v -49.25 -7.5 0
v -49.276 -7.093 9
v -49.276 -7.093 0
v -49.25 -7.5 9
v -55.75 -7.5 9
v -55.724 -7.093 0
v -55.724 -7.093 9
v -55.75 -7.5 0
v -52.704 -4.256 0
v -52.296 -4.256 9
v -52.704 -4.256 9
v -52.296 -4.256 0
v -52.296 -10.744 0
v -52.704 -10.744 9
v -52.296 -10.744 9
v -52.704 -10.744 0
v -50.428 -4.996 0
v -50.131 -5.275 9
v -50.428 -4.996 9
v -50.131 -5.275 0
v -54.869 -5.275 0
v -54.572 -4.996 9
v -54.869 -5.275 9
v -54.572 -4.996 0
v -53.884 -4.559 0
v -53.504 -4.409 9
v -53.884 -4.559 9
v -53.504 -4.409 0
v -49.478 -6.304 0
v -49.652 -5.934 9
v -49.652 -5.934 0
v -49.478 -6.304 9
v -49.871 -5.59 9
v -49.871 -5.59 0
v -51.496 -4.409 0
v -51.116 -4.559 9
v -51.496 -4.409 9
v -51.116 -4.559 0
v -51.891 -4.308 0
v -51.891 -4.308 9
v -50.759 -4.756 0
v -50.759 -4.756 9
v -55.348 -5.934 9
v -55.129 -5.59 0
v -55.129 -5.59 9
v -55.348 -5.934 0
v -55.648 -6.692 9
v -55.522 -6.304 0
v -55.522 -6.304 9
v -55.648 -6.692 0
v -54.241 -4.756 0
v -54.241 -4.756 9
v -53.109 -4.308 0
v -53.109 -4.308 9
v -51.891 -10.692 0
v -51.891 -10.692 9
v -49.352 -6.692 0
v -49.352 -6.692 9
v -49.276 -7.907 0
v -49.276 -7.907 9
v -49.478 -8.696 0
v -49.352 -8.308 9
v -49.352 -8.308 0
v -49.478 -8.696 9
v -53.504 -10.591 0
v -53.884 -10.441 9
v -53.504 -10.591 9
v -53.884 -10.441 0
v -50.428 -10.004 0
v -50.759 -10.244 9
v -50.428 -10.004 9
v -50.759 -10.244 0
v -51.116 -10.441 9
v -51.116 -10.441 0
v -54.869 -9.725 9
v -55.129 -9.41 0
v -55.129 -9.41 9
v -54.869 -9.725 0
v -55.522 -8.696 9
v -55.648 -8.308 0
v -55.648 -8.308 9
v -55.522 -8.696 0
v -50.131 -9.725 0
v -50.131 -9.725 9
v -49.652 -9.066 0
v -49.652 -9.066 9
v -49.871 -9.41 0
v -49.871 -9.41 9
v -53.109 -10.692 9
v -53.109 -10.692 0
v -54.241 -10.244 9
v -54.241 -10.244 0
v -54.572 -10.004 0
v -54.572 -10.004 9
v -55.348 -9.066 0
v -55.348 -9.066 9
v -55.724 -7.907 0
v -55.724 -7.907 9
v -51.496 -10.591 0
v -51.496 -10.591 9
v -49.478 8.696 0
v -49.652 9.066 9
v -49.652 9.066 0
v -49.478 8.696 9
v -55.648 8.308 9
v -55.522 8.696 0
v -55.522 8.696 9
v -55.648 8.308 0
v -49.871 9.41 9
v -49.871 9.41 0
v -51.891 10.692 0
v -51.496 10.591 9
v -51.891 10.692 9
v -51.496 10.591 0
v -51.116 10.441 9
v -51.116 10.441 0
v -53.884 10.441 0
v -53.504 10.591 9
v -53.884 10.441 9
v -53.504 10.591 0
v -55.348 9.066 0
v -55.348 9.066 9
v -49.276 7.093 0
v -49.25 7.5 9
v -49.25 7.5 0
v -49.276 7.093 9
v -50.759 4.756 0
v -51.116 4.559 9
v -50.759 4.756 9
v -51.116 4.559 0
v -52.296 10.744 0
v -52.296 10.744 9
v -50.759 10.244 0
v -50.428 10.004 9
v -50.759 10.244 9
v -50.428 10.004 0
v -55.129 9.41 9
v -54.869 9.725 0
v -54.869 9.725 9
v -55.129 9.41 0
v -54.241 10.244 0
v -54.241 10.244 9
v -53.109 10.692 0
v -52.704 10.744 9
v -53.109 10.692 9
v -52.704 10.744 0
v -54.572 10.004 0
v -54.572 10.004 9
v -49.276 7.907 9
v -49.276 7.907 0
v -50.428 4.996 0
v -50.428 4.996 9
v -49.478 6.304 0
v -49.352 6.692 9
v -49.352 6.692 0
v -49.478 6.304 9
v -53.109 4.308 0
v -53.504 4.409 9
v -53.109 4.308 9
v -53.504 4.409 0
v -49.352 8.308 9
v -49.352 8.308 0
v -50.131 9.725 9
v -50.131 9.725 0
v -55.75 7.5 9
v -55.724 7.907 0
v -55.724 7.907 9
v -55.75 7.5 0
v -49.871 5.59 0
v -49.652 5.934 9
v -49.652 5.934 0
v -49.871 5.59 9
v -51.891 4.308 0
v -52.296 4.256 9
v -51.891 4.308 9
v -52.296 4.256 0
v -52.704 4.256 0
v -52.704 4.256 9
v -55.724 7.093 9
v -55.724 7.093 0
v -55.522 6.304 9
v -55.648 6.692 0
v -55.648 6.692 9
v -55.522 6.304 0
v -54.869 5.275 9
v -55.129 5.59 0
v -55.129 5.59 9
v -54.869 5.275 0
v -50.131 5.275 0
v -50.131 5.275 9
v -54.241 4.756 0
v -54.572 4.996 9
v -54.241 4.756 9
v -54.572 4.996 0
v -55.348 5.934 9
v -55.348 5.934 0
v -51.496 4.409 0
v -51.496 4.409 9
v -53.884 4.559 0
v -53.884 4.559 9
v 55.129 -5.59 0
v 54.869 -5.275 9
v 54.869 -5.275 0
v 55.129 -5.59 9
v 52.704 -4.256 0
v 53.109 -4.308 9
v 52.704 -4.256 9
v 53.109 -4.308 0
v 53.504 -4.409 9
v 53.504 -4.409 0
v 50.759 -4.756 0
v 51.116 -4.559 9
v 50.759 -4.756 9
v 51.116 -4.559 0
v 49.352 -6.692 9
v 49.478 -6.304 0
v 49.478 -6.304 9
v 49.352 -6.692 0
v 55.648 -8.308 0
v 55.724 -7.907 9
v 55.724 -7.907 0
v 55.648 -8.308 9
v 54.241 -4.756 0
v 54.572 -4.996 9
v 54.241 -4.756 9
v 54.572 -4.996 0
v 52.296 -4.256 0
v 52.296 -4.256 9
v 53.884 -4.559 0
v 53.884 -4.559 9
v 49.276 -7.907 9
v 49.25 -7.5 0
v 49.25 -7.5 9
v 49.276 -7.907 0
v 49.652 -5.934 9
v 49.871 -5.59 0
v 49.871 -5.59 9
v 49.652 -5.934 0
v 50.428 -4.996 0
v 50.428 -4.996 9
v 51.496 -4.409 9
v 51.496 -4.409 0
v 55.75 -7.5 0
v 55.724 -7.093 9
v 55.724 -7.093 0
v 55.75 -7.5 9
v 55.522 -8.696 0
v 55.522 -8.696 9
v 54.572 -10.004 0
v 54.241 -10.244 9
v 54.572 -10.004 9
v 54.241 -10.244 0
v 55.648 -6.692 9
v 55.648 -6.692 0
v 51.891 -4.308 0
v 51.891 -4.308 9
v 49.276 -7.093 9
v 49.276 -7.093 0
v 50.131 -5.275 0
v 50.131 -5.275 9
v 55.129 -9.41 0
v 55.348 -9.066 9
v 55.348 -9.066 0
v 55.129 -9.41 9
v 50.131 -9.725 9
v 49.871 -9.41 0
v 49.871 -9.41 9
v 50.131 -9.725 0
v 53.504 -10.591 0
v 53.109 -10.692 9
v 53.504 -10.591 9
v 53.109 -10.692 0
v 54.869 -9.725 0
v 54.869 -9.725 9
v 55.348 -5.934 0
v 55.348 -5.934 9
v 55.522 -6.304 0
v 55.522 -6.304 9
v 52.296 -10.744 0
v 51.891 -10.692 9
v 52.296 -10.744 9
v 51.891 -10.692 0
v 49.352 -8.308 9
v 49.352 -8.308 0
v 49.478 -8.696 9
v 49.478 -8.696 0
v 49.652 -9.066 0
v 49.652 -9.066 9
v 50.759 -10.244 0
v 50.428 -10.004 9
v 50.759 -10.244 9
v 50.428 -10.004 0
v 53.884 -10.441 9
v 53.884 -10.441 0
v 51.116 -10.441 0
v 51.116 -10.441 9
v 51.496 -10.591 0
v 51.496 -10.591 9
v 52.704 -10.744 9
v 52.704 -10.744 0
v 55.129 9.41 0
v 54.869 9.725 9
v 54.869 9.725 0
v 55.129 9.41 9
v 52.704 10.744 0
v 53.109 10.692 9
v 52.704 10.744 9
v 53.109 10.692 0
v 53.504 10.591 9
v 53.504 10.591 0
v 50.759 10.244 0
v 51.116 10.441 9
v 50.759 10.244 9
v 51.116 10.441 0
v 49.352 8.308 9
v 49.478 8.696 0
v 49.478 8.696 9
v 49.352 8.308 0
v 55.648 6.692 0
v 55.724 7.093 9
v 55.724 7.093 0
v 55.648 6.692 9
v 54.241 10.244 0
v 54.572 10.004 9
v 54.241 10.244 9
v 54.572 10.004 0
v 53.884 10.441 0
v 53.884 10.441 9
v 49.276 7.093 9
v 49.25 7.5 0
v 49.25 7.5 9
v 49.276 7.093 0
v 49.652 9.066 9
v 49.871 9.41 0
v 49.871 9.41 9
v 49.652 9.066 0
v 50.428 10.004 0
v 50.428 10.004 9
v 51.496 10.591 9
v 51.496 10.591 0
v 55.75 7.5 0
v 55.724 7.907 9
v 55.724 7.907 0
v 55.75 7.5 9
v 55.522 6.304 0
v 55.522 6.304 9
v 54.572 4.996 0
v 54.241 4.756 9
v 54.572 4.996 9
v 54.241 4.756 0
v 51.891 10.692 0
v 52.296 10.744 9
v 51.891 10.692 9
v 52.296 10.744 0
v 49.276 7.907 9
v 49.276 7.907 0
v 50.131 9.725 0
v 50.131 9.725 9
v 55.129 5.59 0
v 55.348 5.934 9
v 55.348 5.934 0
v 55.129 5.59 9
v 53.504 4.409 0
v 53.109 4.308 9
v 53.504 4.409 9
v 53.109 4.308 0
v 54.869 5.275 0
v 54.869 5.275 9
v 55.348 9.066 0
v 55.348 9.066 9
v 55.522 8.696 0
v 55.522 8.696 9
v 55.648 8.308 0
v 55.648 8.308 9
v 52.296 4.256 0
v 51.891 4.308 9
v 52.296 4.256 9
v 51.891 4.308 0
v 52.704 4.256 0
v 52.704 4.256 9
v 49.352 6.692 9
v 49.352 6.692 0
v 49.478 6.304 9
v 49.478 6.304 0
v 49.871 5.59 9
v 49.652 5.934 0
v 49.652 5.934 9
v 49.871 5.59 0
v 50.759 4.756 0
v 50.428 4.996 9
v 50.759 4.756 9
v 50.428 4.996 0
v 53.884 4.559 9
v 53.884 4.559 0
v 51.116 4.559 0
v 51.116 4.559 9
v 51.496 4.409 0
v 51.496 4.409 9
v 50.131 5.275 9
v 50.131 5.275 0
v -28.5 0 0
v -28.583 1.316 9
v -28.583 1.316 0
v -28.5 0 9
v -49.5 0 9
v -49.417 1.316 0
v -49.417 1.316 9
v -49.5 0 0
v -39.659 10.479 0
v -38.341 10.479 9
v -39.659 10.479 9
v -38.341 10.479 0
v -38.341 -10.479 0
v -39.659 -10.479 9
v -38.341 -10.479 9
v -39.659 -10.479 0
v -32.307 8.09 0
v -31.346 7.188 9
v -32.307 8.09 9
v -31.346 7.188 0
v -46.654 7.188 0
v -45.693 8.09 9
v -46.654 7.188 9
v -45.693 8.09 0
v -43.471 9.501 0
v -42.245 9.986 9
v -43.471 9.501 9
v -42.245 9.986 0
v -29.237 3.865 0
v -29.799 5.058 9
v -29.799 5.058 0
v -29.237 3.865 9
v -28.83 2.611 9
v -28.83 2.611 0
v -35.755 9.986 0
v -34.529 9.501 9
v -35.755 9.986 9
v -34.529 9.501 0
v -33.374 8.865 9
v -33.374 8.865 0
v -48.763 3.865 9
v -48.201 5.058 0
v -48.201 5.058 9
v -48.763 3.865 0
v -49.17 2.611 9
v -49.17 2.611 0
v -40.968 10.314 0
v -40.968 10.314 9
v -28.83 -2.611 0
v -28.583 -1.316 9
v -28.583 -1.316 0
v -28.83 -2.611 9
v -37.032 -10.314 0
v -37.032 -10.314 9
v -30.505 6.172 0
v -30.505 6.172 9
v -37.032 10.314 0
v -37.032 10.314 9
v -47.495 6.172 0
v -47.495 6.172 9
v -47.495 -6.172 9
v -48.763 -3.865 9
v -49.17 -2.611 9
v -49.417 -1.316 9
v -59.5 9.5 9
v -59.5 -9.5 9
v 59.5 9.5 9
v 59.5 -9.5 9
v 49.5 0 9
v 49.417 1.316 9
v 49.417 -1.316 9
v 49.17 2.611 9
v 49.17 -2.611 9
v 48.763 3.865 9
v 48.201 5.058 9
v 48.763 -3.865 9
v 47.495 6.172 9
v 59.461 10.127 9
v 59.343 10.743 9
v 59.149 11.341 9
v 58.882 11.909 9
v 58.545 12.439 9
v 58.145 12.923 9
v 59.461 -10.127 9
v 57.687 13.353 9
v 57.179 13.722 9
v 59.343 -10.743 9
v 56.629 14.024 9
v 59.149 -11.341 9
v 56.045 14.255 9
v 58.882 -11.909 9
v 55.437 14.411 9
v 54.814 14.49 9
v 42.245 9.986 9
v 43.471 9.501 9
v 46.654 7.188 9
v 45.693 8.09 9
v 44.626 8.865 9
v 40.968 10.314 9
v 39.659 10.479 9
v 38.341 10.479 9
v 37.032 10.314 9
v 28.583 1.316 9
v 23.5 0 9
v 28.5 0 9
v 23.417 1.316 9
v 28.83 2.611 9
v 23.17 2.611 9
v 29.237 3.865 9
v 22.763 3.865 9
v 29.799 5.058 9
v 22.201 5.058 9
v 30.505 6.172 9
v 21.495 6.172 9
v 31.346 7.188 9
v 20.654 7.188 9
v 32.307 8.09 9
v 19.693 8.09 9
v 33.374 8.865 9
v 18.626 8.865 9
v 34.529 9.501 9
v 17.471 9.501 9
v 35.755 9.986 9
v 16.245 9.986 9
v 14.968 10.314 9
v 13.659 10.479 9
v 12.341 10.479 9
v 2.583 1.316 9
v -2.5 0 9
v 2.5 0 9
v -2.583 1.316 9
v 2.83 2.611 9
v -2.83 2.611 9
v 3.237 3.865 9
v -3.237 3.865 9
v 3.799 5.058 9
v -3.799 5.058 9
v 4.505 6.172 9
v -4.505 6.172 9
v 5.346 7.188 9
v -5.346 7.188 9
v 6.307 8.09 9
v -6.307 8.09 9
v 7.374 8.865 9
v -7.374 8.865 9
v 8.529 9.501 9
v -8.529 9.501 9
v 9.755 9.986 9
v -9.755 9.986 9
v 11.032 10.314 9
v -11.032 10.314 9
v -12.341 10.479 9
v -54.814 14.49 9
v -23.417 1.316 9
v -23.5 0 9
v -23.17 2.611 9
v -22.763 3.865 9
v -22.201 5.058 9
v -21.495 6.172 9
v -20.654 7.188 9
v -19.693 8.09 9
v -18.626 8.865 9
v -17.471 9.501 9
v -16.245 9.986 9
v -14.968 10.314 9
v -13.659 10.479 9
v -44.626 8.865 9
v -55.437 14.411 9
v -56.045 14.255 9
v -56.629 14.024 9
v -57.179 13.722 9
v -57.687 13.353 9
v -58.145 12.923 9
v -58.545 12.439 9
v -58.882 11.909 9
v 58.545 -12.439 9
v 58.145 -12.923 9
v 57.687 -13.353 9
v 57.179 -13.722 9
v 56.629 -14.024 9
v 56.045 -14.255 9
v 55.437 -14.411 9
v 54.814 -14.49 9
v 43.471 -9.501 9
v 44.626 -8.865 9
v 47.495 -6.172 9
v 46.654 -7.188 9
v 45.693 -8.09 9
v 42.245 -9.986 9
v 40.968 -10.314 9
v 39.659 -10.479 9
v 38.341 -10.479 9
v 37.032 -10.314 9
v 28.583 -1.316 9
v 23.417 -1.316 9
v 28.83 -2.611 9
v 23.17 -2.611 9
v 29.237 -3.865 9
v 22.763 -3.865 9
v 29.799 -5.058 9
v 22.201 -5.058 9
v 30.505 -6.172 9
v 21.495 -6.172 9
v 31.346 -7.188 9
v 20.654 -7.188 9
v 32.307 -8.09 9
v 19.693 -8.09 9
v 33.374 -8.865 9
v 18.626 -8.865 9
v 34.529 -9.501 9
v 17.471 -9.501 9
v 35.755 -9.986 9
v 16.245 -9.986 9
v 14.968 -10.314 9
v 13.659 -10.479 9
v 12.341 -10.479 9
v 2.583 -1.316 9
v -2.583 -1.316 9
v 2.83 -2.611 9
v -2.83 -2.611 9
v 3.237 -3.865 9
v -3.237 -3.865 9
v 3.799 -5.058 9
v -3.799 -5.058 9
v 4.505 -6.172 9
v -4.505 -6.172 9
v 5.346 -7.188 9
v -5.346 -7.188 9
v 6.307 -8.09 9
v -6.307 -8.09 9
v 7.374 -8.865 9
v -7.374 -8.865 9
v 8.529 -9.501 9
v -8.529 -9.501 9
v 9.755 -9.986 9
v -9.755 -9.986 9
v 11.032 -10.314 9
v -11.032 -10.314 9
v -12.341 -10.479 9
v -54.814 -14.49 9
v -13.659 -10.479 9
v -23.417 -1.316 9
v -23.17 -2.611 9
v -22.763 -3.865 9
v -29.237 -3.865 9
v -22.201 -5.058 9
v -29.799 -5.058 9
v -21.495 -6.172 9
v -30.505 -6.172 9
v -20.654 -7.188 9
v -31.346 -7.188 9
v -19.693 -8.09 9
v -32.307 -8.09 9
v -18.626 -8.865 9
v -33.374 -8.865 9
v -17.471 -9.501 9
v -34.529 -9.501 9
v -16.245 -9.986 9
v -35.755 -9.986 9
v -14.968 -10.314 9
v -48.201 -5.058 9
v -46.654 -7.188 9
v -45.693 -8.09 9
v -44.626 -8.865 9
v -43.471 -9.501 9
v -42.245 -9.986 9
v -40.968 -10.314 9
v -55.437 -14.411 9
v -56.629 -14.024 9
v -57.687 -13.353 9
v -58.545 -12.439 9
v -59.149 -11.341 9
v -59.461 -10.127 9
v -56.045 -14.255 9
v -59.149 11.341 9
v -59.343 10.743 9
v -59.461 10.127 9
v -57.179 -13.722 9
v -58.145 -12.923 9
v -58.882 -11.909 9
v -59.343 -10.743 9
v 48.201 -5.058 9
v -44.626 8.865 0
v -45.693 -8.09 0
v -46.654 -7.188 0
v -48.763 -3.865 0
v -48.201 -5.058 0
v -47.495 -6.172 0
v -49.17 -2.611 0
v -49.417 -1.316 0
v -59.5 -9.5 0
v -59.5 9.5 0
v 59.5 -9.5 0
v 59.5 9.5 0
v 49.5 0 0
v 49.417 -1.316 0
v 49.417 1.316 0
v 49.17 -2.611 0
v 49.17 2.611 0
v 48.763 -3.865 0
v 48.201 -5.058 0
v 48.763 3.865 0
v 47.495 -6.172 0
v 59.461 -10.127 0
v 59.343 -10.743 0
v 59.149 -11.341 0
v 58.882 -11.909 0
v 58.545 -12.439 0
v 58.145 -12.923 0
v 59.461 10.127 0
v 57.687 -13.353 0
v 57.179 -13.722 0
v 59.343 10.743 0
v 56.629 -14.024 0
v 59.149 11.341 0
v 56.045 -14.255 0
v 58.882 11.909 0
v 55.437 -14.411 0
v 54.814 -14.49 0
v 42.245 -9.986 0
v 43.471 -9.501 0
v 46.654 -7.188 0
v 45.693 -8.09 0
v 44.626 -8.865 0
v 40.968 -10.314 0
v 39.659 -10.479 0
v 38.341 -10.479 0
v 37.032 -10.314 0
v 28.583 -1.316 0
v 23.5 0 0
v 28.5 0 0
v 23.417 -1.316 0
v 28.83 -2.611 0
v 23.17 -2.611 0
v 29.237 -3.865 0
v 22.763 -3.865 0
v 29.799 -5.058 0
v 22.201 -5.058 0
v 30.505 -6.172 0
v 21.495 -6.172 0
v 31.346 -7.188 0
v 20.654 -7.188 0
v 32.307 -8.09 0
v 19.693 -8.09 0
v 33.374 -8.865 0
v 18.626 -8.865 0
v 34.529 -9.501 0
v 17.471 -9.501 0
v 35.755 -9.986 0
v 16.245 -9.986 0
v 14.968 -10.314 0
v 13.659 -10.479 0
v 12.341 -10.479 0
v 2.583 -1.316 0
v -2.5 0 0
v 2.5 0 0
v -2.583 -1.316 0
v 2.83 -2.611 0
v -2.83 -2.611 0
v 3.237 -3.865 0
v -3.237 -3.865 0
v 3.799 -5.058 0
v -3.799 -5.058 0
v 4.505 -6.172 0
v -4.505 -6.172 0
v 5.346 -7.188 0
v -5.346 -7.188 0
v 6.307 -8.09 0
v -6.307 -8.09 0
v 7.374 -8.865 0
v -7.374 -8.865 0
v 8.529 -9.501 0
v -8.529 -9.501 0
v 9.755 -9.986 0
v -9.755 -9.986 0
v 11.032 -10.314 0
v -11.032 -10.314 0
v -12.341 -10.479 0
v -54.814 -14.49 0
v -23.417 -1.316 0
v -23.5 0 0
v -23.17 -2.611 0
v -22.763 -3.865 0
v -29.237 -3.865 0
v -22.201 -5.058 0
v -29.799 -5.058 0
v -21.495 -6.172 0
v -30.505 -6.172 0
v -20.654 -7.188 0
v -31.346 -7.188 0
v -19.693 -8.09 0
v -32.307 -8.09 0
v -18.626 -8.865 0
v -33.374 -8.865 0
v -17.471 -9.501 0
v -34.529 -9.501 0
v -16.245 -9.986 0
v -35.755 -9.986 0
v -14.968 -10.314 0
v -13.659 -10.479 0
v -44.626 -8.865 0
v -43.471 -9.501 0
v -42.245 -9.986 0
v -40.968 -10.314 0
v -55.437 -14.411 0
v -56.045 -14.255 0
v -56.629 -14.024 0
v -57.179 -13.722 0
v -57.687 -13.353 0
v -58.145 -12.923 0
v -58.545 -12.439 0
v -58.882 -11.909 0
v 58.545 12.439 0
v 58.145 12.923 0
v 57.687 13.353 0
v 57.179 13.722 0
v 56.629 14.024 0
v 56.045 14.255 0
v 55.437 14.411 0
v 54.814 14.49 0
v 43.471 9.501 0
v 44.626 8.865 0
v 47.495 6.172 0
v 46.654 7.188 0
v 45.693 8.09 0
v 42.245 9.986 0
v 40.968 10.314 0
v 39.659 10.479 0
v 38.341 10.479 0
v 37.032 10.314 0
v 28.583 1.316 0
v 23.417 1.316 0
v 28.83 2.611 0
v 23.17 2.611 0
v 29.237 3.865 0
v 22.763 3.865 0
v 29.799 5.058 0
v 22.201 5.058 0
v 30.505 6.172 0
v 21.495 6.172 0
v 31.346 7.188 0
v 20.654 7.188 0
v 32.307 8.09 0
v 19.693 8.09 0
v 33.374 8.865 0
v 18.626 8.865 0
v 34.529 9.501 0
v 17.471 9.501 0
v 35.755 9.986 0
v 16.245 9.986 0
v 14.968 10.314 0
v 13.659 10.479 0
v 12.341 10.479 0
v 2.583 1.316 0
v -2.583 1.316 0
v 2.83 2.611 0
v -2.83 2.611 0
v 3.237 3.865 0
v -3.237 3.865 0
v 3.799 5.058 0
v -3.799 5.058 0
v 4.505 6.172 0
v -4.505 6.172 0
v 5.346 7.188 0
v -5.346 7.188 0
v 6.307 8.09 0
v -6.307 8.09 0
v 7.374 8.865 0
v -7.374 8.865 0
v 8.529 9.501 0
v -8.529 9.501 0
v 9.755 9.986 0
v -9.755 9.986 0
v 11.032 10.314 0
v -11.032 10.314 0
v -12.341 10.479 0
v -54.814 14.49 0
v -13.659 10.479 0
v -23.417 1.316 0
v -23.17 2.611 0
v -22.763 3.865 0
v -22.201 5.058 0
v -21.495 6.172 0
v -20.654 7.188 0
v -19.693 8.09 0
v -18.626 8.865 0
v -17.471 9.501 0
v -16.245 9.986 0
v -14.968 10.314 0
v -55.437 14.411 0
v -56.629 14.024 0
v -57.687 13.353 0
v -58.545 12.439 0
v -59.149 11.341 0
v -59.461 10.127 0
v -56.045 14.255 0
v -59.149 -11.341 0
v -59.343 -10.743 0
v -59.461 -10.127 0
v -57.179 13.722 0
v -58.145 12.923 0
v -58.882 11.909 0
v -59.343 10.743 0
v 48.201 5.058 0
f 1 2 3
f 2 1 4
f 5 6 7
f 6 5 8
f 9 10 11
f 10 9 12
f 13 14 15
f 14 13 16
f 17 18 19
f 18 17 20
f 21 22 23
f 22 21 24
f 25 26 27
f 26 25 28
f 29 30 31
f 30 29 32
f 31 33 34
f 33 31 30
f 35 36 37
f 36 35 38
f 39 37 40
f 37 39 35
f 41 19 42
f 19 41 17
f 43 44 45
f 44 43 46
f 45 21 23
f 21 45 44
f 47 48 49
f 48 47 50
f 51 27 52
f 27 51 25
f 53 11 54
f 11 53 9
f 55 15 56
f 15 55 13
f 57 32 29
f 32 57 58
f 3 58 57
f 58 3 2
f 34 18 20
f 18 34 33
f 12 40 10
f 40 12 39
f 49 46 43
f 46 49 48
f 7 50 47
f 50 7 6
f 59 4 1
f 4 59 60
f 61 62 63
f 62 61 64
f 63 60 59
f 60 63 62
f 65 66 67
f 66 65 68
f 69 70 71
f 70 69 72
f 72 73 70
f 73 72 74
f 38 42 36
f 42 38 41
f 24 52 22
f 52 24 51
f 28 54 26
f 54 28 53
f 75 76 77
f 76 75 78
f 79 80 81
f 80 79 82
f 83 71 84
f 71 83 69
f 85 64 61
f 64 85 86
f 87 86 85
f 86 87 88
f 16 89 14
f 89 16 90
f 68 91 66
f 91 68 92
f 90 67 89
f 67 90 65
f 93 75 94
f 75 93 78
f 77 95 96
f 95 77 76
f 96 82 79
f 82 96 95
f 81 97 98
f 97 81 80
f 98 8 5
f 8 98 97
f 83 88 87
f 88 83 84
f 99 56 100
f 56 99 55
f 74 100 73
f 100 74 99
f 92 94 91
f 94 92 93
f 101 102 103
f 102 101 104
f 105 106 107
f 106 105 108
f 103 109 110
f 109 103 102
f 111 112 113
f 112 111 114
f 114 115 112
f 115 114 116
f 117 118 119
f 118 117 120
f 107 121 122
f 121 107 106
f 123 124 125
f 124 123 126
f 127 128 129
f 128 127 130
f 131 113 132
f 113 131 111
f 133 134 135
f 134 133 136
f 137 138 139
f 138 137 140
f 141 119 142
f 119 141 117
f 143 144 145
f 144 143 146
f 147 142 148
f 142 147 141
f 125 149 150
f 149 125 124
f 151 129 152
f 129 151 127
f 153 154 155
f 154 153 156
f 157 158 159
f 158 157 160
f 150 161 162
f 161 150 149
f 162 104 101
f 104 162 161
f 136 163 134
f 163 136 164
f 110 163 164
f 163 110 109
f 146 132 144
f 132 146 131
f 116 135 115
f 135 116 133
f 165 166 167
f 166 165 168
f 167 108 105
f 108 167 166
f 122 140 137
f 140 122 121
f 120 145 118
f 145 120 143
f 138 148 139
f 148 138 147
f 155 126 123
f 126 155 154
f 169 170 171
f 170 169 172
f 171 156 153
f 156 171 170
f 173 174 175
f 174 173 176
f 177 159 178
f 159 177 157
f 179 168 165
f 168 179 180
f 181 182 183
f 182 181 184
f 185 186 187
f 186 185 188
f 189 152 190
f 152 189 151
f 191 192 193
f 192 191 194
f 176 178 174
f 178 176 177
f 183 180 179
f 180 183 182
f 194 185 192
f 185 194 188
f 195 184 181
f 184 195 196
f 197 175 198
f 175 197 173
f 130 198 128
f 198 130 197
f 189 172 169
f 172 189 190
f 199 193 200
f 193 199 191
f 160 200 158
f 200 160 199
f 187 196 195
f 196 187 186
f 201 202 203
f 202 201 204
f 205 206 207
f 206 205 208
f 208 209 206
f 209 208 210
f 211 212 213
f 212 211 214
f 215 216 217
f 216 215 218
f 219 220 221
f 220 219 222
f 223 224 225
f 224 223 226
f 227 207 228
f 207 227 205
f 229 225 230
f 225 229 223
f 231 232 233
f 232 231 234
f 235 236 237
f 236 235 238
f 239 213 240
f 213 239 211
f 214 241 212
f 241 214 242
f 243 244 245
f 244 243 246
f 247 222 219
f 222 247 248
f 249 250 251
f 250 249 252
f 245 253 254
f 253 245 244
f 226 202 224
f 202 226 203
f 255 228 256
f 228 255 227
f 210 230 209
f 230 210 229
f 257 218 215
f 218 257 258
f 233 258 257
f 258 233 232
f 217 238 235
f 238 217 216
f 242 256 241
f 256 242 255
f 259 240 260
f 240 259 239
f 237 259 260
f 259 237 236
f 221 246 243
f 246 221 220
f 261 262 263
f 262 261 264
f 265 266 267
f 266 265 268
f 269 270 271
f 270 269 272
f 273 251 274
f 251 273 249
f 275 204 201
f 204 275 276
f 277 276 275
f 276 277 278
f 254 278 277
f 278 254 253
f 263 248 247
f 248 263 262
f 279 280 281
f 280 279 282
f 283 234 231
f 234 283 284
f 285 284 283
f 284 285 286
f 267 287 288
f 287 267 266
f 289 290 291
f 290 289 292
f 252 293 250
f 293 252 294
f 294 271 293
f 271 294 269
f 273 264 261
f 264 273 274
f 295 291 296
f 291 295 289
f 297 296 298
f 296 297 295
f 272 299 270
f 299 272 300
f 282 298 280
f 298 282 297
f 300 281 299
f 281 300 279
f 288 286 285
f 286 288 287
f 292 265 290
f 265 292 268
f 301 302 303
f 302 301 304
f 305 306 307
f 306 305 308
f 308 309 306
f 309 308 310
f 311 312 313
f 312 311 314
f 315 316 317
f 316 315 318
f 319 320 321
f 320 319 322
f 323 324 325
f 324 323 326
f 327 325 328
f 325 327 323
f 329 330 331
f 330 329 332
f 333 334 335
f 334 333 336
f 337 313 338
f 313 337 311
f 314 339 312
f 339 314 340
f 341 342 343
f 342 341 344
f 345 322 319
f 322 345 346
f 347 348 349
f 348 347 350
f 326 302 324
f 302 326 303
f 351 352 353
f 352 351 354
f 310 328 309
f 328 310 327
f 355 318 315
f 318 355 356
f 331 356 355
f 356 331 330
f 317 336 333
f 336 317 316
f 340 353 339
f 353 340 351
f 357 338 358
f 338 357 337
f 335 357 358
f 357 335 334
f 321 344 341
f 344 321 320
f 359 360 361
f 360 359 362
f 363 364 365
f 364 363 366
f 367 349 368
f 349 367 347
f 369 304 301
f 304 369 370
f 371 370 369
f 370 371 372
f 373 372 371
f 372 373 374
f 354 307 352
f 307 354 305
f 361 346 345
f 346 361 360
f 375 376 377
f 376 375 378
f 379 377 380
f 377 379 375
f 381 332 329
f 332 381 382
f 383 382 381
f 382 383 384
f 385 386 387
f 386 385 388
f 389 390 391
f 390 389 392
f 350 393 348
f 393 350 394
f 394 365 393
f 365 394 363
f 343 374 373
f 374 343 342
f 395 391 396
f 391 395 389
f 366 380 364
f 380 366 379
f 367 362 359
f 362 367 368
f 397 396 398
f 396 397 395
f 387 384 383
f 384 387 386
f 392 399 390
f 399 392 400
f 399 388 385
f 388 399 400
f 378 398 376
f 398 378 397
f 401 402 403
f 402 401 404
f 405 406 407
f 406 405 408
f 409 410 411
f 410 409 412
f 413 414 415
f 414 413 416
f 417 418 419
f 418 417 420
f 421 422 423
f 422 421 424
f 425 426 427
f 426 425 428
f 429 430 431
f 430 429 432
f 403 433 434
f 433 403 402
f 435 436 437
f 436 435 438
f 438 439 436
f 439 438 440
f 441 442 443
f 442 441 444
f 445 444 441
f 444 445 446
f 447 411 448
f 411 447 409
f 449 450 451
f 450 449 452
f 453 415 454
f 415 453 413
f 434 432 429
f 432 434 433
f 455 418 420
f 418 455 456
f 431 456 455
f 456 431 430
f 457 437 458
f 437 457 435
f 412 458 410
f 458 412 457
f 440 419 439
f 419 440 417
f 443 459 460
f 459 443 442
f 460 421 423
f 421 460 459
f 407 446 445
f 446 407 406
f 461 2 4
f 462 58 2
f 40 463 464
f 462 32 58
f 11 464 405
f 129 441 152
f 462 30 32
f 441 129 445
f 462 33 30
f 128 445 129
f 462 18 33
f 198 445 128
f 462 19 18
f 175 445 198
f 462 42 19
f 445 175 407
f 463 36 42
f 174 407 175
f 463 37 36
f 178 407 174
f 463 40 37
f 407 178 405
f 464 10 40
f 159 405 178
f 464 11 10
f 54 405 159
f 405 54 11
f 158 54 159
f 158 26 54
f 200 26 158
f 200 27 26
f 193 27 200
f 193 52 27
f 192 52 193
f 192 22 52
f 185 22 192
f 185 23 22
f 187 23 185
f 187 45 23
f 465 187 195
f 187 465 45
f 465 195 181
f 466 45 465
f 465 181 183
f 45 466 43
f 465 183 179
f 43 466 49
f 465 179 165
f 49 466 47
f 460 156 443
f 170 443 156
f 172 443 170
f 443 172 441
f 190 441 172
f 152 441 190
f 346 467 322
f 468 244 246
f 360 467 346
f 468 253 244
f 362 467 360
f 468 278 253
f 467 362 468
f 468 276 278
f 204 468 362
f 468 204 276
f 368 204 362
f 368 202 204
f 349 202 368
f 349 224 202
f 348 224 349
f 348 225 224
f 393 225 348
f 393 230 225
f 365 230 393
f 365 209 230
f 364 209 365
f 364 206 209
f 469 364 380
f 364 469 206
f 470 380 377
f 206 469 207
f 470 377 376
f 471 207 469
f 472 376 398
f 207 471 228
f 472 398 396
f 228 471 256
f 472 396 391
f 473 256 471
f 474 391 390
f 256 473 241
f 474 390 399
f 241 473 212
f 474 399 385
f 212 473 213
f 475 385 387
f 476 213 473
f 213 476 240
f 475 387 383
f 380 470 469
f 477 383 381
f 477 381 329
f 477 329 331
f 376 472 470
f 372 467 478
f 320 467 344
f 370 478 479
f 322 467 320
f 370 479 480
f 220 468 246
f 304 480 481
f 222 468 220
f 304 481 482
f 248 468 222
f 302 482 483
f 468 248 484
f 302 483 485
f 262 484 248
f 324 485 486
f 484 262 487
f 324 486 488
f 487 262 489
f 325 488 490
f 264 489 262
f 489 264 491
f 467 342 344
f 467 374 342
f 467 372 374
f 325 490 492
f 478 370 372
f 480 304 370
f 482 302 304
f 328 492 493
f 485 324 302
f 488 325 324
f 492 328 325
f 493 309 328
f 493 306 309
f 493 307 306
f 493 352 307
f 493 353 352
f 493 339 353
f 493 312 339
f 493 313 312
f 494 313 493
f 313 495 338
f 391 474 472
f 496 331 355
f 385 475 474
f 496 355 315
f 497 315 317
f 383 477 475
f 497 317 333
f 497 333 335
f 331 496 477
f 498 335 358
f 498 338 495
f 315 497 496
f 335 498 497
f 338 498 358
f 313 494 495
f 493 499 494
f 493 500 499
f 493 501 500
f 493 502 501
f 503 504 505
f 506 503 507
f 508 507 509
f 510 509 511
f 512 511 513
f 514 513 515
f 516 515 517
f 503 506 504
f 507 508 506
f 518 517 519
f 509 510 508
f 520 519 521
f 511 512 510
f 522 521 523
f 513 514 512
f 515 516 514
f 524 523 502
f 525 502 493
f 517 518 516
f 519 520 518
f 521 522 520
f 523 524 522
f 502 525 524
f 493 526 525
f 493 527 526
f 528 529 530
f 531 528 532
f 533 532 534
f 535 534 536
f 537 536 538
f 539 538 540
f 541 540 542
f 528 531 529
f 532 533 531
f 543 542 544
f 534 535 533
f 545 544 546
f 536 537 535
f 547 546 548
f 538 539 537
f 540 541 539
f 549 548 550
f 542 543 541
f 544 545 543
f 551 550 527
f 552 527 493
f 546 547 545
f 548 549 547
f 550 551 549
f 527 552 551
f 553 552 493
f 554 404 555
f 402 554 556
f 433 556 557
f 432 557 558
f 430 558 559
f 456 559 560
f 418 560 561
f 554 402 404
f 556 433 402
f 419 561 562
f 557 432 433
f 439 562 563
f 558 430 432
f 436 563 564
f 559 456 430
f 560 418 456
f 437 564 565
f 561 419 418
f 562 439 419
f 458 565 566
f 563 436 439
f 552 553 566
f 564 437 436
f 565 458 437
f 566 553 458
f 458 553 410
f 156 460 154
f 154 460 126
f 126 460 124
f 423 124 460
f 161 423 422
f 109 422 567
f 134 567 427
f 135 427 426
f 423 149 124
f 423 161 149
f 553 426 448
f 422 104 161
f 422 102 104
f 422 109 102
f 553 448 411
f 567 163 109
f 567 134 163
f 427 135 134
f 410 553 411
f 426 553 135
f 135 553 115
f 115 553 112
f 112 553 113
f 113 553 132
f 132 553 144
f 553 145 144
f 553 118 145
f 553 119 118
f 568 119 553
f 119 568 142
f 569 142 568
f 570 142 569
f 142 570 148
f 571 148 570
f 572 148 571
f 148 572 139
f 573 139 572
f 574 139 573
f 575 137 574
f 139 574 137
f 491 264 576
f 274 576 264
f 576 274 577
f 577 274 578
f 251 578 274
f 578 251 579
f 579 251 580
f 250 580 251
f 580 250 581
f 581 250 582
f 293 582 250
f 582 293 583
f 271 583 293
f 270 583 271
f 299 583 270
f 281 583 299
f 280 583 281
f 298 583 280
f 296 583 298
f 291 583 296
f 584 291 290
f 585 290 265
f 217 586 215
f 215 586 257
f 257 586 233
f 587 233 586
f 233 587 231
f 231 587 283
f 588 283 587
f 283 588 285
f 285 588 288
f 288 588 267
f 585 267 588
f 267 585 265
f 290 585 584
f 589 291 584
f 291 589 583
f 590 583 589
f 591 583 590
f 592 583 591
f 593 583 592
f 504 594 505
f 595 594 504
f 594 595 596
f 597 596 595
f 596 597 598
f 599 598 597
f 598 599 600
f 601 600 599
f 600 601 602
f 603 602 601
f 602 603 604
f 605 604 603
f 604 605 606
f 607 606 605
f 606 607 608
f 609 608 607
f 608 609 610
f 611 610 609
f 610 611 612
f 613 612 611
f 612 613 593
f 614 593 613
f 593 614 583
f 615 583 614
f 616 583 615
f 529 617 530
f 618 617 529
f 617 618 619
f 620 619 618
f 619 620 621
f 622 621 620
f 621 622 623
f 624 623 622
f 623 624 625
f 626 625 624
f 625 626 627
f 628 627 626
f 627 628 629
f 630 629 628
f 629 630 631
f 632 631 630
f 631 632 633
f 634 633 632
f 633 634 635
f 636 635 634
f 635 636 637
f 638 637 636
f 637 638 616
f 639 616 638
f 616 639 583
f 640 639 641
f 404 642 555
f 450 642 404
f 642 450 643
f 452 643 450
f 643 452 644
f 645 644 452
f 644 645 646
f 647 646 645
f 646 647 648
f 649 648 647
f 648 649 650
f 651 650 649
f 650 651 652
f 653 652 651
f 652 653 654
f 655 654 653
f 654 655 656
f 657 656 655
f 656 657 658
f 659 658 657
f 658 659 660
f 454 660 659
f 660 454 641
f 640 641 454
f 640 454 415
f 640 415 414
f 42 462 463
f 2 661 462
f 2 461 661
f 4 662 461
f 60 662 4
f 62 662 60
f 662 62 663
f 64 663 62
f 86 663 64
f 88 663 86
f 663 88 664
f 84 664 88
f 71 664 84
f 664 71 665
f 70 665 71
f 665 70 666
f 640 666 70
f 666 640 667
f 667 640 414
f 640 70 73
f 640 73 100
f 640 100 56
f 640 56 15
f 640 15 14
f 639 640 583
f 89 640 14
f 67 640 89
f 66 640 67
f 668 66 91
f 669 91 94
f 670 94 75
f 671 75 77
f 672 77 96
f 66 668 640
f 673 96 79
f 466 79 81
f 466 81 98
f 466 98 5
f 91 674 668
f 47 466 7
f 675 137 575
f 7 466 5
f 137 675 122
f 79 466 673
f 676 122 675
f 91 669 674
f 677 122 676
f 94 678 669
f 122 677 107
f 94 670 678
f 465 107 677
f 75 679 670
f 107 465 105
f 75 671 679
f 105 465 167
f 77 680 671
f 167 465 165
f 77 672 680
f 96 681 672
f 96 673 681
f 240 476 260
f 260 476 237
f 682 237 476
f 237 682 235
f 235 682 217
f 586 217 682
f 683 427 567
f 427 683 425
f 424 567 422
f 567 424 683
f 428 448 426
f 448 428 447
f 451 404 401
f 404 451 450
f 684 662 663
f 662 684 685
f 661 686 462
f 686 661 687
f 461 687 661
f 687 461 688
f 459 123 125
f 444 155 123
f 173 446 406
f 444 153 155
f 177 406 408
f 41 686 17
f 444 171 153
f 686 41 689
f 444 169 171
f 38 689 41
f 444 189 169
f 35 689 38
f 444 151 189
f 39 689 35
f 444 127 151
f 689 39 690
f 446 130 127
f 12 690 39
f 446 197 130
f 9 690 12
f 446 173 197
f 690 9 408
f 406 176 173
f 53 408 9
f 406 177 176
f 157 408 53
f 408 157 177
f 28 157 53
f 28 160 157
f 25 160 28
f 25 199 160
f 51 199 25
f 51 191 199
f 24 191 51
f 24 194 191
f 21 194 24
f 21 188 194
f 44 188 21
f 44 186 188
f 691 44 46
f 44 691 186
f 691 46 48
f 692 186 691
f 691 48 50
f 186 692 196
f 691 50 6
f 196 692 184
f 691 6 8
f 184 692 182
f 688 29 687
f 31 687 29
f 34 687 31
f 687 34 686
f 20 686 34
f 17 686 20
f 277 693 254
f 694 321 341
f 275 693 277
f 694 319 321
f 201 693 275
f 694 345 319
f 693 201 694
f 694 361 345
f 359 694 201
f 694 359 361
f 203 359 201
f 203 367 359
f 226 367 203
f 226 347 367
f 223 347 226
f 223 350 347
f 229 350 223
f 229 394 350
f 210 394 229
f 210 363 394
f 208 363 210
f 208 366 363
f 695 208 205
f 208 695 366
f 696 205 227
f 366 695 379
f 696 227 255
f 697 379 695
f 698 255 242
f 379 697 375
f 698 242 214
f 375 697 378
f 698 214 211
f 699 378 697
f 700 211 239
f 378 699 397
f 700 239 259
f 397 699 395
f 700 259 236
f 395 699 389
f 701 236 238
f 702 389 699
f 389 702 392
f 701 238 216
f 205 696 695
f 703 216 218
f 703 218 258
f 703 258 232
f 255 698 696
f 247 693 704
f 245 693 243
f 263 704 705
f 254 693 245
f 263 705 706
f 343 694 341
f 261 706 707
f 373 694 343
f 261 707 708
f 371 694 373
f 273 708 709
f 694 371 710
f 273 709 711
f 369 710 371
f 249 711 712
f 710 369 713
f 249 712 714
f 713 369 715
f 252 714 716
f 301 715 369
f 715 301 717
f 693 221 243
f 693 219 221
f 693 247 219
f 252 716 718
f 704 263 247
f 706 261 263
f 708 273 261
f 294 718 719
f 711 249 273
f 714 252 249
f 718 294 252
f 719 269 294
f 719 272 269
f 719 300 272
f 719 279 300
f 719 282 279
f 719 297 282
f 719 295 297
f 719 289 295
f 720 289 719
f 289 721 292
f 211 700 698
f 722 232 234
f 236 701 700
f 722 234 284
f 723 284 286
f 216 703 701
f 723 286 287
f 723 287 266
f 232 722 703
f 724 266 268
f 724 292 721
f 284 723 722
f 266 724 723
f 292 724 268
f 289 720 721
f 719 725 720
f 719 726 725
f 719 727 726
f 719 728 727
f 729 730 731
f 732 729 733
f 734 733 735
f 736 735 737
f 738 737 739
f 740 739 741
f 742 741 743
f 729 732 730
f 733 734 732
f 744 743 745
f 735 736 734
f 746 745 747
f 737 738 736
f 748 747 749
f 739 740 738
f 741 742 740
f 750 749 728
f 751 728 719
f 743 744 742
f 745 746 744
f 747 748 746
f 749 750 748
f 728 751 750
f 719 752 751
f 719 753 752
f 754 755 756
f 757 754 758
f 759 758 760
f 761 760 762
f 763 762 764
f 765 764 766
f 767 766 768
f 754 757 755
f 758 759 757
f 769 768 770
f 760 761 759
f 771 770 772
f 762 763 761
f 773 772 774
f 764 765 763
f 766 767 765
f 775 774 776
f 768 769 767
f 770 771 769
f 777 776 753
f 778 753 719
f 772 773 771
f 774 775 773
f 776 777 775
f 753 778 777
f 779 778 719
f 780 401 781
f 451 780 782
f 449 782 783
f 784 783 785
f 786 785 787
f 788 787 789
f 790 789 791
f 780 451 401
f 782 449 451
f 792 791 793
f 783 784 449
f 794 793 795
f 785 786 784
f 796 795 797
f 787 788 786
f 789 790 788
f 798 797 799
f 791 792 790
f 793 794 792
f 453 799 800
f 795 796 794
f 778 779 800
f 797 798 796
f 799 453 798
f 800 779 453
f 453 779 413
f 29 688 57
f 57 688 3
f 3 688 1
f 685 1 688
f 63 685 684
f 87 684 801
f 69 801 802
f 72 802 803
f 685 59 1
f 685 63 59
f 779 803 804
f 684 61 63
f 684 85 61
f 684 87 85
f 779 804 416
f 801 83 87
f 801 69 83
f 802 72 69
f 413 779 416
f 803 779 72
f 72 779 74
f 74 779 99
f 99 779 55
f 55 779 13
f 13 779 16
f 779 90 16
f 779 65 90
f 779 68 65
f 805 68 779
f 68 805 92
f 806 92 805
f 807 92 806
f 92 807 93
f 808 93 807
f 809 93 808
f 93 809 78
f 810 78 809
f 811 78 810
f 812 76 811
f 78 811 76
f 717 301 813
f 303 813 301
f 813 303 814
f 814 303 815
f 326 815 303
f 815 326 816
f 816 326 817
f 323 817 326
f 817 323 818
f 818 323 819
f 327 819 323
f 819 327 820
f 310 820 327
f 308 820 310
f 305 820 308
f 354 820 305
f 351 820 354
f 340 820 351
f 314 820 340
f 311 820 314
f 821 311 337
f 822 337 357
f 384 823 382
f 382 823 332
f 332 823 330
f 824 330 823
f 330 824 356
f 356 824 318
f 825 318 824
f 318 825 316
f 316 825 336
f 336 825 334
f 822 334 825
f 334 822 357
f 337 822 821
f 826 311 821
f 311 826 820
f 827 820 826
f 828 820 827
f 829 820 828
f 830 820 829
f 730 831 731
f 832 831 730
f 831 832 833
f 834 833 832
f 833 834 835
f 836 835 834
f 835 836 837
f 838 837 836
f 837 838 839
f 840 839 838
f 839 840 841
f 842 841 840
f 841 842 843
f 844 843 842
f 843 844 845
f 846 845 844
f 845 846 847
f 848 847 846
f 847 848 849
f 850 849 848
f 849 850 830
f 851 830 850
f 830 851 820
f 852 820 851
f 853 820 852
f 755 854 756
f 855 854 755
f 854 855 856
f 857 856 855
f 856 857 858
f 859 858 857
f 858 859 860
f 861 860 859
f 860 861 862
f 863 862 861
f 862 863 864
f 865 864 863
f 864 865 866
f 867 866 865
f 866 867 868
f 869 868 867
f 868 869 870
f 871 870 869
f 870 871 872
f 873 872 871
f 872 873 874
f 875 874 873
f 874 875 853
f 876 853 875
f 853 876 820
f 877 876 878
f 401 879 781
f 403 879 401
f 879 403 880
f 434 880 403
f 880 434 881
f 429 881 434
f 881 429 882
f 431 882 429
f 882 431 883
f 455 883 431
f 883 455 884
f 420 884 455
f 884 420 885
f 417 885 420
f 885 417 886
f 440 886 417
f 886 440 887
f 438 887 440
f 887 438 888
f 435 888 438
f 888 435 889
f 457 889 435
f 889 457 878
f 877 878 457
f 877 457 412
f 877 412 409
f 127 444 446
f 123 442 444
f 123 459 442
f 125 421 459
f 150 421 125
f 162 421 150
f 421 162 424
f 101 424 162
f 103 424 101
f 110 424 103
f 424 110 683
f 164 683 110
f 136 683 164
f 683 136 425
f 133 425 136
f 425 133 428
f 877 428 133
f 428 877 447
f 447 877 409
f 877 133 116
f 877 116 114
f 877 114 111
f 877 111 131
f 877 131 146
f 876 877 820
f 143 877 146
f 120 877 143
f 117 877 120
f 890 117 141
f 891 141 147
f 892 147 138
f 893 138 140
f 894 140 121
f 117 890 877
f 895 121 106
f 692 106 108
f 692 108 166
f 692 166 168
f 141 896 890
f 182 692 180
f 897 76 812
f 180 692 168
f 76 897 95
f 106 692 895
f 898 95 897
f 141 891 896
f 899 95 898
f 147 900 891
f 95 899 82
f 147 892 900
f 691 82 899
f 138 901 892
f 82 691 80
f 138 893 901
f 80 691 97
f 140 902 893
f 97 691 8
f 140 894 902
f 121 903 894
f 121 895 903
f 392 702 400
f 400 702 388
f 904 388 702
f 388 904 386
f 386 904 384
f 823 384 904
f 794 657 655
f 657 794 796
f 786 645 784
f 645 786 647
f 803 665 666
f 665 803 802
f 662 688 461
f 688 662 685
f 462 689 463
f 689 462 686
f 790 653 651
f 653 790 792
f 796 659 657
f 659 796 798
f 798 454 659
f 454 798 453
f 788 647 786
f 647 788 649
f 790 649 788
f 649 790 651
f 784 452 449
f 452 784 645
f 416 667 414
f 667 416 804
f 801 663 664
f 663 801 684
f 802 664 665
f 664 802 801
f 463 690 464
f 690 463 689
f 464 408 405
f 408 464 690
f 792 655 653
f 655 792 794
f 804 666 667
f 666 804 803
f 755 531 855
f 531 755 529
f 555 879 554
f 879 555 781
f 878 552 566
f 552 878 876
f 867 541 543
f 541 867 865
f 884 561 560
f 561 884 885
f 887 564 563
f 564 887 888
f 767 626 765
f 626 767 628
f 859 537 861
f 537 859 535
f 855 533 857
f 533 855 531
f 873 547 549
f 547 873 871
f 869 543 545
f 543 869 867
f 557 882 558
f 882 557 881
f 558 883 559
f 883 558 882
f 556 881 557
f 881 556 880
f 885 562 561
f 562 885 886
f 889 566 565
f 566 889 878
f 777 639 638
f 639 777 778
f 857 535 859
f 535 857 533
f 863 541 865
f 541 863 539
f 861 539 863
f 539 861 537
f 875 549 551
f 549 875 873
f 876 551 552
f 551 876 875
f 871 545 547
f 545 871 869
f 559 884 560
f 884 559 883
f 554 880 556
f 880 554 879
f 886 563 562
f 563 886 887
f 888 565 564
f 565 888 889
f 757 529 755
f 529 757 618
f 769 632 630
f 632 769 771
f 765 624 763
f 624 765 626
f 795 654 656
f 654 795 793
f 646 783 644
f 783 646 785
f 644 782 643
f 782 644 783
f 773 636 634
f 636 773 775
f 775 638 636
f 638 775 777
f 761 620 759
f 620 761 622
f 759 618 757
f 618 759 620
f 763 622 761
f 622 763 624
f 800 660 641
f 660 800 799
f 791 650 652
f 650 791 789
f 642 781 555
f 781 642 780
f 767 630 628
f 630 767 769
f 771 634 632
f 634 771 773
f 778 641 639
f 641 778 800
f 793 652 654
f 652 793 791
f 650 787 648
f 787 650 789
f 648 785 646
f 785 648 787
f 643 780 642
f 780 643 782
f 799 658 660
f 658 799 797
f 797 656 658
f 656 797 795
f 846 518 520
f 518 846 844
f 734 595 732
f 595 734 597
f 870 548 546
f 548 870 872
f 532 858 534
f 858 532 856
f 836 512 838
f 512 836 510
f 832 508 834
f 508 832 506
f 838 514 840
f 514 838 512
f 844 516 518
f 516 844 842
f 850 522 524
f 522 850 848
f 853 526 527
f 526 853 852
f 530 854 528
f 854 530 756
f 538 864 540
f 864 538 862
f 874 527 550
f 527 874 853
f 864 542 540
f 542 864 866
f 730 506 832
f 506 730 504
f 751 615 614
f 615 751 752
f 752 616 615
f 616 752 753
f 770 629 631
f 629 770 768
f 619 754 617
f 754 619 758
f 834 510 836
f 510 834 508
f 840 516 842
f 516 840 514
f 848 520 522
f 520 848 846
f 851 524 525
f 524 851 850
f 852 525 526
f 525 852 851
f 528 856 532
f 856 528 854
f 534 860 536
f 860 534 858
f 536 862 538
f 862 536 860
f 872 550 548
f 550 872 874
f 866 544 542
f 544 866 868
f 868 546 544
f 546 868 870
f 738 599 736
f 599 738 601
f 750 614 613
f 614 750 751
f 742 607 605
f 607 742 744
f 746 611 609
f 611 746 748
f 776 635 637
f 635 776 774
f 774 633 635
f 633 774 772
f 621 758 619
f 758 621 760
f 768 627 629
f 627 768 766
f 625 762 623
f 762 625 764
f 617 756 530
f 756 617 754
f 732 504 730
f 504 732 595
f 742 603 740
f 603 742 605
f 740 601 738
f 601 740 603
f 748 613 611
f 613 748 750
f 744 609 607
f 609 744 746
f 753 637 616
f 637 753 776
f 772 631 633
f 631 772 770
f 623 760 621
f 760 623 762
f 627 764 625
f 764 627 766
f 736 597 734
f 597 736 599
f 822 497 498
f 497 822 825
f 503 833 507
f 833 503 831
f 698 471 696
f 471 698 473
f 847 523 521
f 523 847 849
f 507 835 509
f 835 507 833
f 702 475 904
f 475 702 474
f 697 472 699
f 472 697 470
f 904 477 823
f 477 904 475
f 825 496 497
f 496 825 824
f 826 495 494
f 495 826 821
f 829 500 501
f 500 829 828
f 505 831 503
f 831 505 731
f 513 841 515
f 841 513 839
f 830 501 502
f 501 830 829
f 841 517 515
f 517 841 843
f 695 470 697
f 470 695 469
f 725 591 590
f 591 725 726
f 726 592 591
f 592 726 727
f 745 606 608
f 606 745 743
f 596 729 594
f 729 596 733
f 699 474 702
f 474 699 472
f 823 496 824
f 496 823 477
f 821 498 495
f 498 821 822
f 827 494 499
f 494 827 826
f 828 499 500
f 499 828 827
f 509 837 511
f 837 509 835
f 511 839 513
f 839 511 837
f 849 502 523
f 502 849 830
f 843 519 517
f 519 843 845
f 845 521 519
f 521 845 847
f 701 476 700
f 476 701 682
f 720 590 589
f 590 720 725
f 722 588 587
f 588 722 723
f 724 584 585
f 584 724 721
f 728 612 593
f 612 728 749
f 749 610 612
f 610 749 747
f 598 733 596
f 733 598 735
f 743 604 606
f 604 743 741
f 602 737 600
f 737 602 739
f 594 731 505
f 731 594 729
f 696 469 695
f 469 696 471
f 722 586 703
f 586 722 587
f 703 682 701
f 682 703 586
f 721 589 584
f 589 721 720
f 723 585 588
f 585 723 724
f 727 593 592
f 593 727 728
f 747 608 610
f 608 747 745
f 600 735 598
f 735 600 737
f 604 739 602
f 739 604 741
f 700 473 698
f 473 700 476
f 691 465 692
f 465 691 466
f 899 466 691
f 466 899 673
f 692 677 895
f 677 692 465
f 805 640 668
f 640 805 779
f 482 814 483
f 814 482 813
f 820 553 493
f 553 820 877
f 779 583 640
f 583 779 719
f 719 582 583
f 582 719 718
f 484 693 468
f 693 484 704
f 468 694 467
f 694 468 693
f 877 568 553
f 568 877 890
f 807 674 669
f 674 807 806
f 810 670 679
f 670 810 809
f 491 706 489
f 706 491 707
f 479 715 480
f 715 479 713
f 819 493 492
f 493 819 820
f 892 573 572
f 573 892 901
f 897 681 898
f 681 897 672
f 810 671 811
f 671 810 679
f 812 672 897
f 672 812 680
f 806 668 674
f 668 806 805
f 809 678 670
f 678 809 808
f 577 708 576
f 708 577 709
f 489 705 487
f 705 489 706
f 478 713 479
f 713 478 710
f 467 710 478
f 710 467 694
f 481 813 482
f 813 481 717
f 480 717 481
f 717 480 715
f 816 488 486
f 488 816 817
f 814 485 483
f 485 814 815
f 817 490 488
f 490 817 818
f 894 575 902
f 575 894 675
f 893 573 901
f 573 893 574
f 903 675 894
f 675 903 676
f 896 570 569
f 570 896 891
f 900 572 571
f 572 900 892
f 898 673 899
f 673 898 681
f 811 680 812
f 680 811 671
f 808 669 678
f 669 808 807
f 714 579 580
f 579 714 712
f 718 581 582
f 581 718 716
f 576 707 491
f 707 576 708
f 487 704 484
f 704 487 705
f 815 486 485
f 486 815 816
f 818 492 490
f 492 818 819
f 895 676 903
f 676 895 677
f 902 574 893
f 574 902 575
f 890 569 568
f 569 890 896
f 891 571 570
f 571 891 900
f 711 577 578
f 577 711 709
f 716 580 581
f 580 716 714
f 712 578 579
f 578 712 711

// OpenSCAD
$fn = 50;


difference() {
	union() {
		hull() {
			translate(v = [-54.5000000000, 9.5000000000, 0]) {
				cylinder(h = 9, r = 5);
			}
			translate(v = [54.5000000000, 9.5000000000, 0]) {
				cylinder(h = 9, r = 5);
			}
			translate(v = [-54.5000000000, -9.5000000000, 0]) {
				cylinder(h = 9, r = 5);
			}
			translate(v = [54.5000000000, -9.5000000000, 0]) {
				cylinder(h = 9, r = 5);
			}
		}
	}
	union() {
		#translate(v = [-52.5000000000, -7.5000000000, -100.0000000000]) {
			cylinder(h = 200, r = 3.2500000000);
		}
		#translate(v = [-52.5000000000, 7.5000000000, -100.0000000000]) {
			cylinder(h = 200, r = 3.2500000000);
		}
		#translate(v = [52.5000000000, -7.5000000000, -100.0000000000]) {
			cylinder(h = 200, r = 3.2500000000);
		}
		#translate(v = [52.5000000000, 7.5000000000, -100.0000000000]) {
			cylinder(h = 200, r = 3.2500000000);
		}
		#translate(v = [-39.0000000000, 0, 0]) {
			cylinder(h = 9, r = 10.5000000000);
		}
		#translate(v = [-13.0000000000, 0, 0]) {
			cylinder(h = 9, r = 10.5000000000);
		}
		#translate(v = [13.0000000000, 0, 0]) {
			cylinder(h = 9, r = 10.5000000000);
		}
		#translate(v = [39.0000000000, 0, 0]) {
			cylinder(h = 9, r = 10.5000000000);
		}
	}
}
